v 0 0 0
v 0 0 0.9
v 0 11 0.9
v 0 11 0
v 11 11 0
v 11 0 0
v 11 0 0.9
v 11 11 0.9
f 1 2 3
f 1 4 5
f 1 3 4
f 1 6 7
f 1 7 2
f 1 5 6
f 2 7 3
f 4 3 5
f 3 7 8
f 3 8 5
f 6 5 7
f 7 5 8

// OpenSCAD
/* Warning, this is a very basic generator with a lot of approximation 
input data : [VQFN, MXX, 11x11x0.9mm, 132, , B, C04-00517B]
generated by com.zoubworld.electronics.cad.model3d.Basic
Date : Sun Feb 15 10:50:48 CET 2026
*/

//body
color("black")
translate([0,0,0])
cube([11.0,11.0,0.9], center=false);
